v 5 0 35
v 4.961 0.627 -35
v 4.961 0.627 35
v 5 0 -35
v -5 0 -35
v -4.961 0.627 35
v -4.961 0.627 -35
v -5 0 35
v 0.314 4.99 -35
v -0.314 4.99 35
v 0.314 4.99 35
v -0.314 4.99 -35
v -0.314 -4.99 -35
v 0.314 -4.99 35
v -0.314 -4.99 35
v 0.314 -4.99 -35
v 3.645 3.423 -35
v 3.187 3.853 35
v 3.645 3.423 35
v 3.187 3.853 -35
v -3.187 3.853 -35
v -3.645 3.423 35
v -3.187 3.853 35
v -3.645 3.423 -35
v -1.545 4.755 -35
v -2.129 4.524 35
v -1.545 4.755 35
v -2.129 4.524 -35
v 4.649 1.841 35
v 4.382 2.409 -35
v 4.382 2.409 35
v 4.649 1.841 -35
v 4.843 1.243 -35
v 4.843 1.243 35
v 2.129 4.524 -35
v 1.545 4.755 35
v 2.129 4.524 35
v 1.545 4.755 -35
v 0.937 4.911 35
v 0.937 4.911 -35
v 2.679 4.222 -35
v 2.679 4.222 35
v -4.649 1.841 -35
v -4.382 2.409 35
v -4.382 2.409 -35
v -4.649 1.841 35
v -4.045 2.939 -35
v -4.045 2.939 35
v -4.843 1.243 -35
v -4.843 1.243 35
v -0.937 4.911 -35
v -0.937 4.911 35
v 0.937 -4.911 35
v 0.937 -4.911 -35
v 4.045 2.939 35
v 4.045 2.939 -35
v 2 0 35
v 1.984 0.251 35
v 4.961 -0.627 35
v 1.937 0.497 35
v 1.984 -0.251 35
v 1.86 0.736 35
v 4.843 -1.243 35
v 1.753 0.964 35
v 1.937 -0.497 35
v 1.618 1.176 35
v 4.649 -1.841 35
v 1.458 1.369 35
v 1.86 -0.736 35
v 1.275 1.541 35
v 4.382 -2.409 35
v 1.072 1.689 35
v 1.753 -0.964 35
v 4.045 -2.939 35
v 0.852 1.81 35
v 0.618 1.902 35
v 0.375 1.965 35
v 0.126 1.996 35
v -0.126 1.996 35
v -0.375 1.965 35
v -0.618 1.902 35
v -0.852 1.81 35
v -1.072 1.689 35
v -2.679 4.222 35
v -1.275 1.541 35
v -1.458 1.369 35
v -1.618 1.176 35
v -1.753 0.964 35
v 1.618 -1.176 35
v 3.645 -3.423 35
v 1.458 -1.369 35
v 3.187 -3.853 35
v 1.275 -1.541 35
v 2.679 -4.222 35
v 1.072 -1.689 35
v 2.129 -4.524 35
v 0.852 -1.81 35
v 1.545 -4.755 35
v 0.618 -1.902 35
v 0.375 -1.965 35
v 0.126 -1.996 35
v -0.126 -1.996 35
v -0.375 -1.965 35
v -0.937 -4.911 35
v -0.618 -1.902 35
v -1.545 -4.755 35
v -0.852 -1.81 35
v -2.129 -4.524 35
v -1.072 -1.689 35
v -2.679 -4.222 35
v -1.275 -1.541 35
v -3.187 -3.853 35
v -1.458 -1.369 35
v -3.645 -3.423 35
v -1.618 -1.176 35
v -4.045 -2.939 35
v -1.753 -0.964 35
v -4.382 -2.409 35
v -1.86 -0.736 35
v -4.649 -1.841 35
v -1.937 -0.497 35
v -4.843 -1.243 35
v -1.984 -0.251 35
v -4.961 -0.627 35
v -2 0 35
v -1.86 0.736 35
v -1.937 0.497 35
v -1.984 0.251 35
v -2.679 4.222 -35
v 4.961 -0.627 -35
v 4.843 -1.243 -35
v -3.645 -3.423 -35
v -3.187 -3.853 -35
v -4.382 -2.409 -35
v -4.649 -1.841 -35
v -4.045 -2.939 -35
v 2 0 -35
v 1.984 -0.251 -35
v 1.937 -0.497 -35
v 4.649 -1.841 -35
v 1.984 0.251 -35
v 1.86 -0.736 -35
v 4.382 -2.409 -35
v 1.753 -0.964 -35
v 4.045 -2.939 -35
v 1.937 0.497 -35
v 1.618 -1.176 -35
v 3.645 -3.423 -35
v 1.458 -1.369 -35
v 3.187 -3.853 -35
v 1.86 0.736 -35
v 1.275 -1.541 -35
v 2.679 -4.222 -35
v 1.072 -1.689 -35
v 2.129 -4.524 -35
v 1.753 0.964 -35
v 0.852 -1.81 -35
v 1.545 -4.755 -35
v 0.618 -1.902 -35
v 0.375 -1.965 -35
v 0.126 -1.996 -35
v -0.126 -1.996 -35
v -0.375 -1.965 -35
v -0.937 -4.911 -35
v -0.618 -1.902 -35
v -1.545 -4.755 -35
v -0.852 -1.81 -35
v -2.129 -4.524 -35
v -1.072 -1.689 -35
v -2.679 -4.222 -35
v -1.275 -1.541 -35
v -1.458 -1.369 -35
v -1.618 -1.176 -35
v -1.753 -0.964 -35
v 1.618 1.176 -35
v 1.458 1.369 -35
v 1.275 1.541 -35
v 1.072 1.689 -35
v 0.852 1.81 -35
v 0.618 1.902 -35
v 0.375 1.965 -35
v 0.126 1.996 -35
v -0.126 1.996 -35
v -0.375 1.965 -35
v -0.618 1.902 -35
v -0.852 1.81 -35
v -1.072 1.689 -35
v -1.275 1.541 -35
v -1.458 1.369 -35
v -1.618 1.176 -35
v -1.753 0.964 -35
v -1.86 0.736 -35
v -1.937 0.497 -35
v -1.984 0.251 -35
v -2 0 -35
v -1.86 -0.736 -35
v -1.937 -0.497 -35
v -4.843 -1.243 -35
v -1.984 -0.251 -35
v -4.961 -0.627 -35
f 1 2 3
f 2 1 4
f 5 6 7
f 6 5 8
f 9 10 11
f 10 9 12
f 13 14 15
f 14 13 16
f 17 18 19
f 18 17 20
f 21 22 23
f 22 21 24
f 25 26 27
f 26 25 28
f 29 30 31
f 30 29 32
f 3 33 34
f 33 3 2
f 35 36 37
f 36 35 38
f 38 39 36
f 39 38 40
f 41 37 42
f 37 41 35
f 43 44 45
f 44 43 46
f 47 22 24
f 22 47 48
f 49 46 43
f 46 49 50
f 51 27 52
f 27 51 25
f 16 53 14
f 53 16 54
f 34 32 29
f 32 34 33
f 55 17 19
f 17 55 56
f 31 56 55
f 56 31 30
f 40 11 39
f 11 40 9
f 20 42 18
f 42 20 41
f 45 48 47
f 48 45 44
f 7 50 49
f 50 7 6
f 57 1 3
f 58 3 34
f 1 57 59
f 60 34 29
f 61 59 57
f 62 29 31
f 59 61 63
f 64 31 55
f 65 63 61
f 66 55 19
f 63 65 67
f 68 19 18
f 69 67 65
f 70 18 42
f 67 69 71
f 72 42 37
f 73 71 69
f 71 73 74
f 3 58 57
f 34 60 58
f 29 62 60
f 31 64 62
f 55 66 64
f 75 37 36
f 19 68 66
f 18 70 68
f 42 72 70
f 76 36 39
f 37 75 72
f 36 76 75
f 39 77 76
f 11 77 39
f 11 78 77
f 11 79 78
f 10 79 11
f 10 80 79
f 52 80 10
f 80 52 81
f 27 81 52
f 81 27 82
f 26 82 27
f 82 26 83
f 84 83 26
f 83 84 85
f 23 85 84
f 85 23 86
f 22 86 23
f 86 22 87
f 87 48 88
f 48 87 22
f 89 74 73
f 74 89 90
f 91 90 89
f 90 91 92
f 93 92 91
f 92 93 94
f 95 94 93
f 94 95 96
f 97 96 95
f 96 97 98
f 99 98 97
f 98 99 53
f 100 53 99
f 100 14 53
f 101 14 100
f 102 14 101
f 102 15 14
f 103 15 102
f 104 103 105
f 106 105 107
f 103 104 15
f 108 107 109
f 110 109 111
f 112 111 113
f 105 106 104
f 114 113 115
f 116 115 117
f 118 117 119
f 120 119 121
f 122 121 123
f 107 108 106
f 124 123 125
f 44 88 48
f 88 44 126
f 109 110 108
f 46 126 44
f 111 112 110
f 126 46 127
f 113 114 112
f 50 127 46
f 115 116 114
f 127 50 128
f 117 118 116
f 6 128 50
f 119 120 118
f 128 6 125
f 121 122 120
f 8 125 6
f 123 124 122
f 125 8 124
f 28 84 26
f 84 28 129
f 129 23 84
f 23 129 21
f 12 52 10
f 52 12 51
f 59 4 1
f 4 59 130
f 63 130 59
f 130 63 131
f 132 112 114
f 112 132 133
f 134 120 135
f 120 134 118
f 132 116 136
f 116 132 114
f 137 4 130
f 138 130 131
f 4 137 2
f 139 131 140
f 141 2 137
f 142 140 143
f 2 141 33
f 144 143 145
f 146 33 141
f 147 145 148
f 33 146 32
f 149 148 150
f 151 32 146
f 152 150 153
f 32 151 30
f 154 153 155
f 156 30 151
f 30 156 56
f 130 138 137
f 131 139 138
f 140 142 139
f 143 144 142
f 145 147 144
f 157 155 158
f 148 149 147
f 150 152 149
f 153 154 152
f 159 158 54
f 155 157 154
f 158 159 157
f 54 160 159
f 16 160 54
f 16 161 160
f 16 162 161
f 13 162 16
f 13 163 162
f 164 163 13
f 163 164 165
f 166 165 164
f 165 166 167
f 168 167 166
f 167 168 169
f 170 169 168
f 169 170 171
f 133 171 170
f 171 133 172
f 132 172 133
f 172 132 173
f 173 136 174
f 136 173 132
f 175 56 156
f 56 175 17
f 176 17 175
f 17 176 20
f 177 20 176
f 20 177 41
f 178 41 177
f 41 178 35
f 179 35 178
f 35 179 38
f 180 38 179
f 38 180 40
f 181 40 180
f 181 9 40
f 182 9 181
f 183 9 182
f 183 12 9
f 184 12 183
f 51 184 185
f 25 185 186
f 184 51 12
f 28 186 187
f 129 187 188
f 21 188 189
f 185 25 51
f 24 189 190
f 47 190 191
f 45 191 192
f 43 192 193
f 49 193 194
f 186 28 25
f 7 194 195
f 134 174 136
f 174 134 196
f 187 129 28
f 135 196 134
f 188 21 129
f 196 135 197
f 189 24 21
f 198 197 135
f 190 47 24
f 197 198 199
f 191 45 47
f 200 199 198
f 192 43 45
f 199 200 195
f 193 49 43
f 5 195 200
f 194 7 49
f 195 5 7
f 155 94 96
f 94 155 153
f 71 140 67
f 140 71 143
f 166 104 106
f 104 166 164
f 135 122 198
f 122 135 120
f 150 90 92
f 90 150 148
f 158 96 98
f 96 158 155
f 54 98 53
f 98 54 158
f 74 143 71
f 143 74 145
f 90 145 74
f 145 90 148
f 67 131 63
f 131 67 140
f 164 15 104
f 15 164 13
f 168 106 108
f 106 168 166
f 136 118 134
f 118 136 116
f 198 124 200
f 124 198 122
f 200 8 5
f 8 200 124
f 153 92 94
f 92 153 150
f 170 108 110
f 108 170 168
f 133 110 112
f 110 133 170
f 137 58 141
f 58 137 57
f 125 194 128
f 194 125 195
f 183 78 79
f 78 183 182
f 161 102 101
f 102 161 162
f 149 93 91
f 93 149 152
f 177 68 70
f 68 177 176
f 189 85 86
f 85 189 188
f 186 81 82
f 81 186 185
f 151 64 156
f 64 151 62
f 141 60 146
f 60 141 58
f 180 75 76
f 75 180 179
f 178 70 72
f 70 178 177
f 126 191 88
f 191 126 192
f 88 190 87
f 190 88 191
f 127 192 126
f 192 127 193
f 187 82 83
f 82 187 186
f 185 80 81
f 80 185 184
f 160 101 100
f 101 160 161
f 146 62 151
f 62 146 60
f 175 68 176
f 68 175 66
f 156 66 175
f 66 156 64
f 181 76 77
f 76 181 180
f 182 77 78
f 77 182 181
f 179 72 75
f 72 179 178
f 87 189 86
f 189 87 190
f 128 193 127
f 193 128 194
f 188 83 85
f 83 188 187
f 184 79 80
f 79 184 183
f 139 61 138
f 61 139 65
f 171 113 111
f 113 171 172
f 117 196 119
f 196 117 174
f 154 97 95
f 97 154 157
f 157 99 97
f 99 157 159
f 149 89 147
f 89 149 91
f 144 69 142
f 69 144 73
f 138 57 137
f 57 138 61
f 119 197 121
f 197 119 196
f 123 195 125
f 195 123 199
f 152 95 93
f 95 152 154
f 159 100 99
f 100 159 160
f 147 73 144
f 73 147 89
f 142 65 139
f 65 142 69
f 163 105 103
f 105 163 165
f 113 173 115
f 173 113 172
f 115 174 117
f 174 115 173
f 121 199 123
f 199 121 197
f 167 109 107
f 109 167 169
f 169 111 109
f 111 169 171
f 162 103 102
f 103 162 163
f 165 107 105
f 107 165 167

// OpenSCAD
$fn = 50;


difference() {
	union() {
		translate(v = [0, 0, -35.0000000000]) {
			cylinder(h = 70, r = 5.0000000000);
		}
	}
	union() {
		translate(v = [0, 0, -100.0000000000]) {
			cylinder(h = 200, r = 2);
		}
	}
}
